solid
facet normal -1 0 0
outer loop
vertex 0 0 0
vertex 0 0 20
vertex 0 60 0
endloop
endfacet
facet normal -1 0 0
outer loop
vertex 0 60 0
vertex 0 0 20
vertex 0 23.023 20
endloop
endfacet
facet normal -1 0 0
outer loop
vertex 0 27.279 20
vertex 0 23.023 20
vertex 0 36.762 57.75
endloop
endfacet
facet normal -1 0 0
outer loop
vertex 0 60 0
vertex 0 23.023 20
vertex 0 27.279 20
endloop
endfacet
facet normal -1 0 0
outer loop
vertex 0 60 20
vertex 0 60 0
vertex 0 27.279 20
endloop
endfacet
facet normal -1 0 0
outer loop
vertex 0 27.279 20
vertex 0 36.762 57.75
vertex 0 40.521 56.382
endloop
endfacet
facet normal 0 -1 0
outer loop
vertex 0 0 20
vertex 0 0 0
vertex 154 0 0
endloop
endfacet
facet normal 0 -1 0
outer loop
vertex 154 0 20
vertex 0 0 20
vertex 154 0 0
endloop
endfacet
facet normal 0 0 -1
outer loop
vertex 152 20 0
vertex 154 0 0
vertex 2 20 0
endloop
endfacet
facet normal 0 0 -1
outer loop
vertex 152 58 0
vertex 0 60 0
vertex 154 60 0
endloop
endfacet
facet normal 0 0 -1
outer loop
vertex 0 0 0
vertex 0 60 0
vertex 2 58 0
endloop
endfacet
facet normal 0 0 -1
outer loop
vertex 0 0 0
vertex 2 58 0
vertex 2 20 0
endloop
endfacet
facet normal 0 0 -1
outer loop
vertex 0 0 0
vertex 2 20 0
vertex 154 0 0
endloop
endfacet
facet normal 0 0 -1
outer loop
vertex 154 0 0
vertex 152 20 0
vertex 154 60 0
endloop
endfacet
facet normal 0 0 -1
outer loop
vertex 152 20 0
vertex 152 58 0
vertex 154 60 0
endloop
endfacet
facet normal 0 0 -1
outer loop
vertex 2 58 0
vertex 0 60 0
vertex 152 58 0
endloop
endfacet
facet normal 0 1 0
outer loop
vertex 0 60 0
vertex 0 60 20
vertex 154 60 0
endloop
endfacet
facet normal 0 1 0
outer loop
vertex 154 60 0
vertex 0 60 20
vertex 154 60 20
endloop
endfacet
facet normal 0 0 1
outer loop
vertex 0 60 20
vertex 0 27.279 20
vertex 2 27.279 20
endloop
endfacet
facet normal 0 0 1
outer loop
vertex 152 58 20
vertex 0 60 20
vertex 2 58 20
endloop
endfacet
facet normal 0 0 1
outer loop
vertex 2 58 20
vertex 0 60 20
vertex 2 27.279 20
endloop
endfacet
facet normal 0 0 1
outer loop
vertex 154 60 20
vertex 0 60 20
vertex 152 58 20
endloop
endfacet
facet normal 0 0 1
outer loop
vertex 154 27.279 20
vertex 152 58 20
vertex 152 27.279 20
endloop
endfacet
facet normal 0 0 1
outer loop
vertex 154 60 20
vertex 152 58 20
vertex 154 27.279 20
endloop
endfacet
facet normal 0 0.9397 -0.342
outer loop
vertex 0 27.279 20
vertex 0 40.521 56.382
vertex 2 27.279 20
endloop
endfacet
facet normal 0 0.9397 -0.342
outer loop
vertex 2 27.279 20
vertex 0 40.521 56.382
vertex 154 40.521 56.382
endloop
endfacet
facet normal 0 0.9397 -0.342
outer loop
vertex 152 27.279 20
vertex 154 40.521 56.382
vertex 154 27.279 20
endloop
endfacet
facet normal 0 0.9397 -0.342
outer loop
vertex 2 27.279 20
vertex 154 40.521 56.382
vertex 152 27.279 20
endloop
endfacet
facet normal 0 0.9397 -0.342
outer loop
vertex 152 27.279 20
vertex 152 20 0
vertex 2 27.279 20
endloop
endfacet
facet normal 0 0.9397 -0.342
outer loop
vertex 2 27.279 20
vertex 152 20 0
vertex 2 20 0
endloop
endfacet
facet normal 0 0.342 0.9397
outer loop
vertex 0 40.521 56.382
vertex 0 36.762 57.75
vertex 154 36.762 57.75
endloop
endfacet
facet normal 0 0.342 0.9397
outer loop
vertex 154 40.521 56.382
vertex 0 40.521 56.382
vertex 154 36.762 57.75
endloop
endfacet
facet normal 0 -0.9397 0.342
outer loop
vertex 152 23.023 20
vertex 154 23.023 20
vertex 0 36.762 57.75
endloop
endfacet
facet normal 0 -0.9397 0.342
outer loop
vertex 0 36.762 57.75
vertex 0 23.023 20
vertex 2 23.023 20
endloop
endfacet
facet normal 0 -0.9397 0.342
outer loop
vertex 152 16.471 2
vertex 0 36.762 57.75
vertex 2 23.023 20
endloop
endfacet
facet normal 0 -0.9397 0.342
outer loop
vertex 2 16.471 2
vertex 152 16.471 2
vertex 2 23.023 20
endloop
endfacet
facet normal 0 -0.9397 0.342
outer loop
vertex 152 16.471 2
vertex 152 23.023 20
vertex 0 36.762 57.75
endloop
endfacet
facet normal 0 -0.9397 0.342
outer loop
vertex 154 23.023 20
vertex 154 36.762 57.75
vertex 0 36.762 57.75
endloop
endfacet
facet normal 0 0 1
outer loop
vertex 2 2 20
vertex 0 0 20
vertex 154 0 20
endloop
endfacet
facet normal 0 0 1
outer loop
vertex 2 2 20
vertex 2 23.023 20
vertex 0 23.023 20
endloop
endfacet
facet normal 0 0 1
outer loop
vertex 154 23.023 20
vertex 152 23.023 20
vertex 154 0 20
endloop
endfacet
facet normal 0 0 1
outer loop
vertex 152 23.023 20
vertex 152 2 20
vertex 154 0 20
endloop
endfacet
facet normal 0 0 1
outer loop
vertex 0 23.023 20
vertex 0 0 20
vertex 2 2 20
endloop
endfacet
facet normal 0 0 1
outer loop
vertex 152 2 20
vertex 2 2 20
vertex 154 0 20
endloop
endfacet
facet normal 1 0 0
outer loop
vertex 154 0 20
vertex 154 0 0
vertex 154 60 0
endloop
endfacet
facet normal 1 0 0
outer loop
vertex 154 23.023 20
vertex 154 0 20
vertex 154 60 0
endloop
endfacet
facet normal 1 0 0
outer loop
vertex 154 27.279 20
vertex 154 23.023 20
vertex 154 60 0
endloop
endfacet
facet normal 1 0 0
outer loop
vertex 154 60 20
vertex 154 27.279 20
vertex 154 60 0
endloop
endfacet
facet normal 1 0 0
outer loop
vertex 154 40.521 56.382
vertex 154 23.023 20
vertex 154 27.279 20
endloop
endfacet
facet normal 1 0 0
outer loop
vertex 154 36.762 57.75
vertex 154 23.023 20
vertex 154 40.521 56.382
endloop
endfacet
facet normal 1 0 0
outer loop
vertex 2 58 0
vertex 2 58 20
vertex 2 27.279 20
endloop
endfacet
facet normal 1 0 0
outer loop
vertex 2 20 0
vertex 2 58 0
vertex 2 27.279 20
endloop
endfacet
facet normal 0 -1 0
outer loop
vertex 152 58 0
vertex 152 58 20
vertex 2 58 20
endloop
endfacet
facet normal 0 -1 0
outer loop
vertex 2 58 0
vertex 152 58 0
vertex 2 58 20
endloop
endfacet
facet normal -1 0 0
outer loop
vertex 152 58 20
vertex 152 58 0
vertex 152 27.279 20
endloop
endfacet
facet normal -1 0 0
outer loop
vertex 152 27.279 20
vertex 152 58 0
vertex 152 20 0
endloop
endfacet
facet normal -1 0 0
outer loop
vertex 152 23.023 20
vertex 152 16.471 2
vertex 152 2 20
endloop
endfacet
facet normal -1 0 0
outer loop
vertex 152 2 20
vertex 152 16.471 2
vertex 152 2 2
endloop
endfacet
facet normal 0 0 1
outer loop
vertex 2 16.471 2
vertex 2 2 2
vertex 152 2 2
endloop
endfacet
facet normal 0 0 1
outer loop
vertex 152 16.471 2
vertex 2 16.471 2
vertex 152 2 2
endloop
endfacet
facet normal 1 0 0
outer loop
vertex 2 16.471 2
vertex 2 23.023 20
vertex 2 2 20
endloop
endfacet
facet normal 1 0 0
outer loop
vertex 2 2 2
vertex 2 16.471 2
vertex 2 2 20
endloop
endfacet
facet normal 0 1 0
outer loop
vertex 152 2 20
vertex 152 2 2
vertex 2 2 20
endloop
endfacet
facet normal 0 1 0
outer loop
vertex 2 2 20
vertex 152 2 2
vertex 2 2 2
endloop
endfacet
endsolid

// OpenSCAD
frame_height = 20;
frame_width = 150;
frame_thick = 2;
back_height = 60;

difference() {
	cube([frame_width + (2 * frame_thick),back_height,frame_height]);
	translate([frame_thick,frame_thick,0]) {cube([frame_width,back_height - (2 * frame_thick),frame_height]);}
}
cube([frame_width + (2 * frame_thick),20,frame_thick]);

translate([0,20,0]) {rotate([70,0,0]) {cube([frame_width + (2 * frame_thick),back_height,4]);}}
